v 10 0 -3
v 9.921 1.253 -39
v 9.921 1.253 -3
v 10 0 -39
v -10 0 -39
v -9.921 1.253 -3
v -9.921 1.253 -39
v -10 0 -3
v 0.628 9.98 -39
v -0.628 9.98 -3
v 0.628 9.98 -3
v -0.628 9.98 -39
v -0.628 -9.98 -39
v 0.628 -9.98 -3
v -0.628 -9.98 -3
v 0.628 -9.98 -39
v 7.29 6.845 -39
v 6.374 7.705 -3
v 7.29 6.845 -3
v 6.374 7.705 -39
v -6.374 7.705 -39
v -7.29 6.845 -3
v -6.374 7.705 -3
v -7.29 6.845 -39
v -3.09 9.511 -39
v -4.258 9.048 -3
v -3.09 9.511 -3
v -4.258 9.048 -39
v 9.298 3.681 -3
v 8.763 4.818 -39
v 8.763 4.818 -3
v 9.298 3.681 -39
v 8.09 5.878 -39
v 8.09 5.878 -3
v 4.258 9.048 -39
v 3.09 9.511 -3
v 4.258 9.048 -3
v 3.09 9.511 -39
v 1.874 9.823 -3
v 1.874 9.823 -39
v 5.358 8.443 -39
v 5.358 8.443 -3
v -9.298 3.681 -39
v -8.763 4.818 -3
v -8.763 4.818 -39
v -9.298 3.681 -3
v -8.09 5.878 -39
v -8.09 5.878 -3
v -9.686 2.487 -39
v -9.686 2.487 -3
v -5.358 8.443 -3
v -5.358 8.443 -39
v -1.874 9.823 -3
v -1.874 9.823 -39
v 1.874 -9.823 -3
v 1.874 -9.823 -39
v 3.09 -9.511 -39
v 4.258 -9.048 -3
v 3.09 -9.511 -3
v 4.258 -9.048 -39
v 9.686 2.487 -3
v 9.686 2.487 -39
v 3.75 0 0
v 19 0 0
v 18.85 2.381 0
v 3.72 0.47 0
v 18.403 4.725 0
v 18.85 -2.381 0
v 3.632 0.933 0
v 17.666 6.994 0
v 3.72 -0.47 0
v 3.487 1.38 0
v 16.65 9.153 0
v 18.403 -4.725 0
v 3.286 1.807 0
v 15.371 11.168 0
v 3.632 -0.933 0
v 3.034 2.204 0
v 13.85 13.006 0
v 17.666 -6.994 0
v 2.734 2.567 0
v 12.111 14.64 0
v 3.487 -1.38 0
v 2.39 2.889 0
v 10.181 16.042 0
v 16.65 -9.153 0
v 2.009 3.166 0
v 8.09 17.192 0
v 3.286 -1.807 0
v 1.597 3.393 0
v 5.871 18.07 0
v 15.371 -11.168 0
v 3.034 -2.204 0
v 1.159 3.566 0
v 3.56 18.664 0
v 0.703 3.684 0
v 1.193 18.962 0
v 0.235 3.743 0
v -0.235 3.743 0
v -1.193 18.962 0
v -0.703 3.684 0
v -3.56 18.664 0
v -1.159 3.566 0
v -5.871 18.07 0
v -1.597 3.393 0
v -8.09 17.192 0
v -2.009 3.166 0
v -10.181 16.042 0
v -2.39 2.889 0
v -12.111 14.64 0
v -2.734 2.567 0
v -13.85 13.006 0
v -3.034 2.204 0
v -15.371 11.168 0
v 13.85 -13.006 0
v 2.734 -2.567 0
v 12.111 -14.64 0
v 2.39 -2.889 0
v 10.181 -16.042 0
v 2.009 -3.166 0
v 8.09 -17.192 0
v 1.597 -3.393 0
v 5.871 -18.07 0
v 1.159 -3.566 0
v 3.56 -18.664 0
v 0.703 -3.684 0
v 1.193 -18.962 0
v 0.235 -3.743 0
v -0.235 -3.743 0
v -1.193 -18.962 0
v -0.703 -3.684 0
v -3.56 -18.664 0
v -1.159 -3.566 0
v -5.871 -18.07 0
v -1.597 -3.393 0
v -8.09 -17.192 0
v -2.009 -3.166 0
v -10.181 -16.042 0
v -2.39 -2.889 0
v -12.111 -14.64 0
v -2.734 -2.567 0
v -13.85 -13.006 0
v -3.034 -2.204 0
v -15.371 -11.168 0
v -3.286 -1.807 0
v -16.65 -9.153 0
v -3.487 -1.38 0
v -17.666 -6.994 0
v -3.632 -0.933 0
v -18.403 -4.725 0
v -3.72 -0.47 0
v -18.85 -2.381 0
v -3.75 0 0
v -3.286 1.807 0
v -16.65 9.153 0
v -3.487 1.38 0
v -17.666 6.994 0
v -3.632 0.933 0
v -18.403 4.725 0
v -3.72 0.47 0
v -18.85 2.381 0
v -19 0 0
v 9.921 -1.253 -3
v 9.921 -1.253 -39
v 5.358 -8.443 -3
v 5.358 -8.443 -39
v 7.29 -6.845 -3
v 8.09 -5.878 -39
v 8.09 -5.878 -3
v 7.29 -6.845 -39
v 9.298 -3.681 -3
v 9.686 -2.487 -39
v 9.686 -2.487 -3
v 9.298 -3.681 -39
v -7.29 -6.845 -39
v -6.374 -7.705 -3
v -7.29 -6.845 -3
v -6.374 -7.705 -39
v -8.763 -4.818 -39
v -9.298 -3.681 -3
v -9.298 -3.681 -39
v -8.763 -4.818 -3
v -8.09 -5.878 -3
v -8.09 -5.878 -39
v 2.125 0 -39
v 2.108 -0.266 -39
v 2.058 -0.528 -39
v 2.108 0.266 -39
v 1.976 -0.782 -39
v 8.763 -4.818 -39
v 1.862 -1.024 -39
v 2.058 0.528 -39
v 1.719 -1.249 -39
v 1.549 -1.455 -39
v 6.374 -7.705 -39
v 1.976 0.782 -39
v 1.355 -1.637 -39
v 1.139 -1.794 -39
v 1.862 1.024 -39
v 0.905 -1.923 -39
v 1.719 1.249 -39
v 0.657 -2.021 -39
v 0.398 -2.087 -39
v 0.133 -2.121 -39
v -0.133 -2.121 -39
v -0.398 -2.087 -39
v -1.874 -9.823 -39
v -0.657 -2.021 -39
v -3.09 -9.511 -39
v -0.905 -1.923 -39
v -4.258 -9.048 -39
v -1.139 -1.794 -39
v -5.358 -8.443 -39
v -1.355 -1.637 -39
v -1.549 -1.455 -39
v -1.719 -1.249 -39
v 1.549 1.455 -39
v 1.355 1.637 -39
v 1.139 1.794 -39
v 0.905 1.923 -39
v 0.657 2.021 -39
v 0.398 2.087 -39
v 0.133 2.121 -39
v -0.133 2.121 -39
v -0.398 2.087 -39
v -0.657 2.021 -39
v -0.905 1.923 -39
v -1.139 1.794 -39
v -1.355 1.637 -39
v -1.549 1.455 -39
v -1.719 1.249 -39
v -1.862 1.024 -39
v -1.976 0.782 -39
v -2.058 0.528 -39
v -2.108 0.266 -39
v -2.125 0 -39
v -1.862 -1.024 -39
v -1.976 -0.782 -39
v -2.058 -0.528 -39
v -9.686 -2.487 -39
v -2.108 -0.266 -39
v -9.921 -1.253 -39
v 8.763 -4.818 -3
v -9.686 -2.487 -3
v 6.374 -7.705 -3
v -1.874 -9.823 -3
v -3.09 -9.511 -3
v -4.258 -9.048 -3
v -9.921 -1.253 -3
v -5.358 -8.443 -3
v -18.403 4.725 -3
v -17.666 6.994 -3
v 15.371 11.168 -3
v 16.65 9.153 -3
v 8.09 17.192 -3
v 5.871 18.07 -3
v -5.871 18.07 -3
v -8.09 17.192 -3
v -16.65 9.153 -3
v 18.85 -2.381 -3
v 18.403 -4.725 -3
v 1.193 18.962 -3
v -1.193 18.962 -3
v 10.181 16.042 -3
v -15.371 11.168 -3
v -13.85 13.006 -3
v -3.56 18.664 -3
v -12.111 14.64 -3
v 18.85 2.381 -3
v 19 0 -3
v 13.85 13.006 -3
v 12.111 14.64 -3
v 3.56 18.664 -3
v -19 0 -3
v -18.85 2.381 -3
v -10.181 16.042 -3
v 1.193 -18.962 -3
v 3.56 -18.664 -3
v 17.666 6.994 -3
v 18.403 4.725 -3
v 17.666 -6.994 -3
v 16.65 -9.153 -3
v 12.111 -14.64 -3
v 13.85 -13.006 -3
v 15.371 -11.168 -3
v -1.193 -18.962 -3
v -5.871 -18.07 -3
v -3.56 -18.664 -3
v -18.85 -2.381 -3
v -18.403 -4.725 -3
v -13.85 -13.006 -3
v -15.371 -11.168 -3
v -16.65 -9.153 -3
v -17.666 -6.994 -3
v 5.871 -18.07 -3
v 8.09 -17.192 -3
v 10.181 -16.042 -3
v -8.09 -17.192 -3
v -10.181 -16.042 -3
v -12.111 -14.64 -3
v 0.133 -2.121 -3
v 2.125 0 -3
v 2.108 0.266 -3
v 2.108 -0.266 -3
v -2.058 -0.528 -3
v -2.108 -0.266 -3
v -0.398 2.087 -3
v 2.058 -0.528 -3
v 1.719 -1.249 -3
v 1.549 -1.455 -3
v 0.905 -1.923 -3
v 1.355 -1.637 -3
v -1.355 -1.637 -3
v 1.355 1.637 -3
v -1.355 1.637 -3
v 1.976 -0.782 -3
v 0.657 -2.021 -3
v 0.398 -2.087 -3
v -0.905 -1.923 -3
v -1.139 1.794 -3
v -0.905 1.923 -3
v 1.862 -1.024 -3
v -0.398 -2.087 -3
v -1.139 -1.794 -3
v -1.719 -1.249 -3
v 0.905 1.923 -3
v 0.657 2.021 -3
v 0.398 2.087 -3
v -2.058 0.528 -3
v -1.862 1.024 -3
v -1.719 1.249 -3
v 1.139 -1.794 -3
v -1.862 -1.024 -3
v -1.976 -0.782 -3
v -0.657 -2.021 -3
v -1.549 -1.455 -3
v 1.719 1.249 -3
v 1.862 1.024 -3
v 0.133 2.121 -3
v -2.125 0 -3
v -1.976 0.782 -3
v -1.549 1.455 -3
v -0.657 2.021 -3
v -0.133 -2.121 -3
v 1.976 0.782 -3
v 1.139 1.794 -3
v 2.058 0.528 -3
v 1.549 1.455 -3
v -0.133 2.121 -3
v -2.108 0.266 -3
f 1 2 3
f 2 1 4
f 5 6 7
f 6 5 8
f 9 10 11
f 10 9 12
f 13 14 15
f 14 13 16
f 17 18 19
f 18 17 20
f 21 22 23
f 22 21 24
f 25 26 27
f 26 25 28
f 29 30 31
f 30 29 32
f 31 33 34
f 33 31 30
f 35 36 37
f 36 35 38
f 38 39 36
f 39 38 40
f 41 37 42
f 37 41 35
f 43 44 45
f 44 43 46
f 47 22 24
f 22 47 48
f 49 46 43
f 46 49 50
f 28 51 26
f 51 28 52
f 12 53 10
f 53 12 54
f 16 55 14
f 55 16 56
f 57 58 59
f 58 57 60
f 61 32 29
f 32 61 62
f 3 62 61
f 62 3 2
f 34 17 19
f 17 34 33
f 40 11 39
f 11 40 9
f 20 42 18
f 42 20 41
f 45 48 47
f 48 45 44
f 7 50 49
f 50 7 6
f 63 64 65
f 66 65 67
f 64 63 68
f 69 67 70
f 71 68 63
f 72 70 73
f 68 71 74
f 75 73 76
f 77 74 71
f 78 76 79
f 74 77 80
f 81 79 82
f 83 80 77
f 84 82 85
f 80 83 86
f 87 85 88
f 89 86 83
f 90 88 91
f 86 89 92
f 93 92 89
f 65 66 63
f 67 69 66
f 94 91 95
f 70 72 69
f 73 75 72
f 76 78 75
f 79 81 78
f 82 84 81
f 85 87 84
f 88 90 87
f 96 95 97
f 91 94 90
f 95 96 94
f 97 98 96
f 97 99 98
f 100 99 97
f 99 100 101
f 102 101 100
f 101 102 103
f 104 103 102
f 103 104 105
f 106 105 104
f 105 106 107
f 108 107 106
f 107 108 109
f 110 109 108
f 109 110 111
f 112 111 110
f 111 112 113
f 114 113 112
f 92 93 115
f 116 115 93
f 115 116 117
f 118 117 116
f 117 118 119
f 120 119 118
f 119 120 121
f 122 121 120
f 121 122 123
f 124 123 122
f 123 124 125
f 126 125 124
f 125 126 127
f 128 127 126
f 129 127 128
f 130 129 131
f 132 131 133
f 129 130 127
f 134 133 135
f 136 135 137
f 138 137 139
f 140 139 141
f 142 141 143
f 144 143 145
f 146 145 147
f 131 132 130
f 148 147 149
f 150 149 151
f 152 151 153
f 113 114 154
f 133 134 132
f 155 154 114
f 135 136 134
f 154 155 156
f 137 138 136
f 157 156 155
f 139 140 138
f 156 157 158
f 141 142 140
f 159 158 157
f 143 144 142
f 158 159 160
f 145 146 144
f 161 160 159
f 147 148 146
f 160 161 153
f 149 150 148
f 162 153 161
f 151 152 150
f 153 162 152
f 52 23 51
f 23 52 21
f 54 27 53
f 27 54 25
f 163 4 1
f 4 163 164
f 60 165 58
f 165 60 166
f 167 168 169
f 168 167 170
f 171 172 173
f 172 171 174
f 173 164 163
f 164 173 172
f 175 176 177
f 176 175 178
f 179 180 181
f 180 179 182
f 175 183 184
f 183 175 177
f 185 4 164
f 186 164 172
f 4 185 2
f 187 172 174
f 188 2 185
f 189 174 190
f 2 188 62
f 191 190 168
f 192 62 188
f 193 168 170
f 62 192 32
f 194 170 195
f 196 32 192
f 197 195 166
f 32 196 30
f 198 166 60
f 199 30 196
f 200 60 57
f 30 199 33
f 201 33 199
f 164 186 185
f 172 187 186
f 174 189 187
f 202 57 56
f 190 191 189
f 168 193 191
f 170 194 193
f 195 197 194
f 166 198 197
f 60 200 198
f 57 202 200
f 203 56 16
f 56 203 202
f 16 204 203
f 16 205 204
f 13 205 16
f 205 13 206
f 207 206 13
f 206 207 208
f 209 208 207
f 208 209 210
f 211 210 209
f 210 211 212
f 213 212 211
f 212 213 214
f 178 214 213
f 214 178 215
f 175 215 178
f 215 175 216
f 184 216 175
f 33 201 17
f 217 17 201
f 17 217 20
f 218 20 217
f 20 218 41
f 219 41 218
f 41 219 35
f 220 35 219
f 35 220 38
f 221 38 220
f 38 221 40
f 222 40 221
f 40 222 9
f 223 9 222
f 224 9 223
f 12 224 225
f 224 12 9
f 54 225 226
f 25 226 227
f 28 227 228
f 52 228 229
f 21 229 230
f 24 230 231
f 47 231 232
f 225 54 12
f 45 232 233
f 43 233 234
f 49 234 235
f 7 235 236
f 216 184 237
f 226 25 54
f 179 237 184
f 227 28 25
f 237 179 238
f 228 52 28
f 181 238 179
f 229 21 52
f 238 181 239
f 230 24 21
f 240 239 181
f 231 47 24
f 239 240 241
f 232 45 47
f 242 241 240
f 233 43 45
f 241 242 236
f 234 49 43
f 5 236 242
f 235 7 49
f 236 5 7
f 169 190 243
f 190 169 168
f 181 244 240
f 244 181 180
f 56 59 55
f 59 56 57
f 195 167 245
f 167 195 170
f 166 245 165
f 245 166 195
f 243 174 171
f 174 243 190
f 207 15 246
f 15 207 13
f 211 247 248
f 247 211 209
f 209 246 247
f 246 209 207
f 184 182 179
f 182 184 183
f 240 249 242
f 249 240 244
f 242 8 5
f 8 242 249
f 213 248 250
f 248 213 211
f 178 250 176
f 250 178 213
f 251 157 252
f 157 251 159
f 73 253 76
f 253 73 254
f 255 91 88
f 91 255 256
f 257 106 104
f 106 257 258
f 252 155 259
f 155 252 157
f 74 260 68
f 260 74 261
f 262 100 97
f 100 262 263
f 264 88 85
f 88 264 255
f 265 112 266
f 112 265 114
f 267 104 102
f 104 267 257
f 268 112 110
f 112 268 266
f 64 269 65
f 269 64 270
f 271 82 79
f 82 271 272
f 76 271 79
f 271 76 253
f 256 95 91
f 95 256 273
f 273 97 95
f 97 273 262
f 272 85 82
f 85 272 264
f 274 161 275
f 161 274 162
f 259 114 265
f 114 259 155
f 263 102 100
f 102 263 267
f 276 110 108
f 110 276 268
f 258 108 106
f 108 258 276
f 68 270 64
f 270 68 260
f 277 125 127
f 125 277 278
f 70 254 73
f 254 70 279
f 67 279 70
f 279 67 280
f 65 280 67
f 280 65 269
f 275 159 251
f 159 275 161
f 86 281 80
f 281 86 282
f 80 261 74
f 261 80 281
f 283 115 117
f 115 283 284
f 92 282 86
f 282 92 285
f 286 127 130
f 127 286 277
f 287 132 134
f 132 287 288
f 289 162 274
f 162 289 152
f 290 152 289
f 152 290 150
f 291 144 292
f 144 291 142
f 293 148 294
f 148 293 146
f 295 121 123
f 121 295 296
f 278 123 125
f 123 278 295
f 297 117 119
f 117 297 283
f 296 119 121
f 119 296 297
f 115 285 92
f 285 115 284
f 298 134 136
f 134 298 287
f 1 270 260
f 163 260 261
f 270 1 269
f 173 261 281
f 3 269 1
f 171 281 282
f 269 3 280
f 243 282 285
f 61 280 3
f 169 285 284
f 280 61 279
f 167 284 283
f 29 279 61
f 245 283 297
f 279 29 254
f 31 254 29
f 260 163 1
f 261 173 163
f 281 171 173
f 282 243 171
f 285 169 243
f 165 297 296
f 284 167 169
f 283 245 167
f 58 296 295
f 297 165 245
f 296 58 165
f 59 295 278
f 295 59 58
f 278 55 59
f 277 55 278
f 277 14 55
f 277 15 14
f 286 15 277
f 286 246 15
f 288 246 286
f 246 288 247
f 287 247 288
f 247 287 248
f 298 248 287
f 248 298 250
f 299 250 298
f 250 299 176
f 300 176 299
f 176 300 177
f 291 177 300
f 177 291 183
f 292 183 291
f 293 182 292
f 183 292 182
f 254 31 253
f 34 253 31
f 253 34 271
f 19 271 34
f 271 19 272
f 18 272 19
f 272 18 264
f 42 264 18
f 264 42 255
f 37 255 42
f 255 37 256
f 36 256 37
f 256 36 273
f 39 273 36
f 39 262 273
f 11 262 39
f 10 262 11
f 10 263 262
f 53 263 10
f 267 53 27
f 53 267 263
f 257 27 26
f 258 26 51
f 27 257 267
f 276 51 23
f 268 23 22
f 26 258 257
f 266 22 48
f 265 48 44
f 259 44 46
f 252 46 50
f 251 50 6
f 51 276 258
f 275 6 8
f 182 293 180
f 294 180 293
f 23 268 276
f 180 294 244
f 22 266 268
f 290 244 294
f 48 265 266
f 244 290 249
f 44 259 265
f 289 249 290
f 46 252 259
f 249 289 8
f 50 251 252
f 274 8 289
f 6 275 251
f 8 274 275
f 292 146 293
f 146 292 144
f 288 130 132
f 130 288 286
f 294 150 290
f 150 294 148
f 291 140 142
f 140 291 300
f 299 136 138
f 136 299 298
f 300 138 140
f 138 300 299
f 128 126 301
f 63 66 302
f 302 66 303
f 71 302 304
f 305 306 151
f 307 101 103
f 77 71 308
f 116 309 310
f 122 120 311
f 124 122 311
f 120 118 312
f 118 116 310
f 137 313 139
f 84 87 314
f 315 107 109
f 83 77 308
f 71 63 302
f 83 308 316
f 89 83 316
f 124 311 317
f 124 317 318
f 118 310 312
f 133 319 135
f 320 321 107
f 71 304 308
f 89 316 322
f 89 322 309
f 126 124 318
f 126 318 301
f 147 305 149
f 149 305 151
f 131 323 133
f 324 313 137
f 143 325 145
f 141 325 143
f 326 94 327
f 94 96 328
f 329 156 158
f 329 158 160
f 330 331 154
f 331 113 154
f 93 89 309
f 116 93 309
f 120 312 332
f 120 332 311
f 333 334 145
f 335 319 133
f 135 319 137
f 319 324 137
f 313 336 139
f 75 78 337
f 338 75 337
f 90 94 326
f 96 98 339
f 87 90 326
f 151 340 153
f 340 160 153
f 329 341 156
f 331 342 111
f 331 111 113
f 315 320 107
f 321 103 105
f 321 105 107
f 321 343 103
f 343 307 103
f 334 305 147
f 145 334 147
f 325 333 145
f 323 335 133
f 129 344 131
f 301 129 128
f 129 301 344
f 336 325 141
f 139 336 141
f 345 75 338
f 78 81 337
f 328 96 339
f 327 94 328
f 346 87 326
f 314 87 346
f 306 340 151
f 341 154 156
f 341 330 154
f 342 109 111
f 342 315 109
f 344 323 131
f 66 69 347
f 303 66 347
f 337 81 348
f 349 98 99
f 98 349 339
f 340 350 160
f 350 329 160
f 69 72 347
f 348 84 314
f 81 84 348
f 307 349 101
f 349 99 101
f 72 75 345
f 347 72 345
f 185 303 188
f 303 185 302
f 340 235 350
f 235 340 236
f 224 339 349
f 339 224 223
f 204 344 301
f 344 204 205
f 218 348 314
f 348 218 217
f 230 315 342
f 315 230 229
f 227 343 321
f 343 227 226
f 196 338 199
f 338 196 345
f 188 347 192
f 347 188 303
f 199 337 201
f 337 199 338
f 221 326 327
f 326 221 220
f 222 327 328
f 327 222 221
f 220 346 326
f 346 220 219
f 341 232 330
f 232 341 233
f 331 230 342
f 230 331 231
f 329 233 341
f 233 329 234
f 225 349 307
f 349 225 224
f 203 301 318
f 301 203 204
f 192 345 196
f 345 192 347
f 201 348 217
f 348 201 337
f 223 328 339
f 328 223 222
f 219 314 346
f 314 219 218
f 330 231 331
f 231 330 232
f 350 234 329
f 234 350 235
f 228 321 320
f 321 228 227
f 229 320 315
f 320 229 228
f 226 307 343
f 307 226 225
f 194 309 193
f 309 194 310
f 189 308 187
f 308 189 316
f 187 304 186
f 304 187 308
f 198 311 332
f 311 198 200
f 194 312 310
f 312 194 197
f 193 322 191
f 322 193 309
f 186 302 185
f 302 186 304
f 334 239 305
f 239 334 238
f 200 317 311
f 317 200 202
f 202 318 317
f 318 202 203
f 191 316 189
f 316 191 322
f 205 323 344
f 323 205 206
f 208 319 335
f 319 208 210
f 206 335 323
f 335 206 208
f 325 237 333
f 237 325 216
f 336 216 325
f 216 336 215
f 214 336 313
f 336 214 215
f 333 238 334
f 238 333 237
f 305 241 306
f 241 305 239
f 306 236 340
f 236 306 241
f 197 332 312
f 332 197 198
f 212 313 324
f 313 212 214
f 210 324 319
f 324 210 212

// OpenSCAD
$fn = 50;


difference() {
	union() {
		translate(v = [0, 0, -39.0000000000]) {
			cylinder(h = 39, r = 10.0000000000);
		}
		translate(v = [0, 0, -3.0000000000]) {
			cylinder(h = 3, r = 19.0000000000);
		}
	}
	union() {
		translate(v = [0, 0, 0]) {
			rotate(a = [0, 0, 0]) {
				difference() {
					union() {
						#translate(v = [0, 0, -39.0000000000]) {
							cylinder(h = 39, r = 2.0000000000);
						}
						#translate(v = [0, 0, -3]) {
							cylinder(h = 3, r1 = 2.1250000000, r2 = 3.7500000000);
						}
						#translate(v = [0, 0, -39.0000000000]) {
							cylinder(h = 39, r = 2.1250000000);
						}
						#translate(v = [0, 0, -39.0000000000]) {
							cylinder(h = 39, r = 2.0000000000);
						}
					}
					union();
				}
			}
		}
	}
}
